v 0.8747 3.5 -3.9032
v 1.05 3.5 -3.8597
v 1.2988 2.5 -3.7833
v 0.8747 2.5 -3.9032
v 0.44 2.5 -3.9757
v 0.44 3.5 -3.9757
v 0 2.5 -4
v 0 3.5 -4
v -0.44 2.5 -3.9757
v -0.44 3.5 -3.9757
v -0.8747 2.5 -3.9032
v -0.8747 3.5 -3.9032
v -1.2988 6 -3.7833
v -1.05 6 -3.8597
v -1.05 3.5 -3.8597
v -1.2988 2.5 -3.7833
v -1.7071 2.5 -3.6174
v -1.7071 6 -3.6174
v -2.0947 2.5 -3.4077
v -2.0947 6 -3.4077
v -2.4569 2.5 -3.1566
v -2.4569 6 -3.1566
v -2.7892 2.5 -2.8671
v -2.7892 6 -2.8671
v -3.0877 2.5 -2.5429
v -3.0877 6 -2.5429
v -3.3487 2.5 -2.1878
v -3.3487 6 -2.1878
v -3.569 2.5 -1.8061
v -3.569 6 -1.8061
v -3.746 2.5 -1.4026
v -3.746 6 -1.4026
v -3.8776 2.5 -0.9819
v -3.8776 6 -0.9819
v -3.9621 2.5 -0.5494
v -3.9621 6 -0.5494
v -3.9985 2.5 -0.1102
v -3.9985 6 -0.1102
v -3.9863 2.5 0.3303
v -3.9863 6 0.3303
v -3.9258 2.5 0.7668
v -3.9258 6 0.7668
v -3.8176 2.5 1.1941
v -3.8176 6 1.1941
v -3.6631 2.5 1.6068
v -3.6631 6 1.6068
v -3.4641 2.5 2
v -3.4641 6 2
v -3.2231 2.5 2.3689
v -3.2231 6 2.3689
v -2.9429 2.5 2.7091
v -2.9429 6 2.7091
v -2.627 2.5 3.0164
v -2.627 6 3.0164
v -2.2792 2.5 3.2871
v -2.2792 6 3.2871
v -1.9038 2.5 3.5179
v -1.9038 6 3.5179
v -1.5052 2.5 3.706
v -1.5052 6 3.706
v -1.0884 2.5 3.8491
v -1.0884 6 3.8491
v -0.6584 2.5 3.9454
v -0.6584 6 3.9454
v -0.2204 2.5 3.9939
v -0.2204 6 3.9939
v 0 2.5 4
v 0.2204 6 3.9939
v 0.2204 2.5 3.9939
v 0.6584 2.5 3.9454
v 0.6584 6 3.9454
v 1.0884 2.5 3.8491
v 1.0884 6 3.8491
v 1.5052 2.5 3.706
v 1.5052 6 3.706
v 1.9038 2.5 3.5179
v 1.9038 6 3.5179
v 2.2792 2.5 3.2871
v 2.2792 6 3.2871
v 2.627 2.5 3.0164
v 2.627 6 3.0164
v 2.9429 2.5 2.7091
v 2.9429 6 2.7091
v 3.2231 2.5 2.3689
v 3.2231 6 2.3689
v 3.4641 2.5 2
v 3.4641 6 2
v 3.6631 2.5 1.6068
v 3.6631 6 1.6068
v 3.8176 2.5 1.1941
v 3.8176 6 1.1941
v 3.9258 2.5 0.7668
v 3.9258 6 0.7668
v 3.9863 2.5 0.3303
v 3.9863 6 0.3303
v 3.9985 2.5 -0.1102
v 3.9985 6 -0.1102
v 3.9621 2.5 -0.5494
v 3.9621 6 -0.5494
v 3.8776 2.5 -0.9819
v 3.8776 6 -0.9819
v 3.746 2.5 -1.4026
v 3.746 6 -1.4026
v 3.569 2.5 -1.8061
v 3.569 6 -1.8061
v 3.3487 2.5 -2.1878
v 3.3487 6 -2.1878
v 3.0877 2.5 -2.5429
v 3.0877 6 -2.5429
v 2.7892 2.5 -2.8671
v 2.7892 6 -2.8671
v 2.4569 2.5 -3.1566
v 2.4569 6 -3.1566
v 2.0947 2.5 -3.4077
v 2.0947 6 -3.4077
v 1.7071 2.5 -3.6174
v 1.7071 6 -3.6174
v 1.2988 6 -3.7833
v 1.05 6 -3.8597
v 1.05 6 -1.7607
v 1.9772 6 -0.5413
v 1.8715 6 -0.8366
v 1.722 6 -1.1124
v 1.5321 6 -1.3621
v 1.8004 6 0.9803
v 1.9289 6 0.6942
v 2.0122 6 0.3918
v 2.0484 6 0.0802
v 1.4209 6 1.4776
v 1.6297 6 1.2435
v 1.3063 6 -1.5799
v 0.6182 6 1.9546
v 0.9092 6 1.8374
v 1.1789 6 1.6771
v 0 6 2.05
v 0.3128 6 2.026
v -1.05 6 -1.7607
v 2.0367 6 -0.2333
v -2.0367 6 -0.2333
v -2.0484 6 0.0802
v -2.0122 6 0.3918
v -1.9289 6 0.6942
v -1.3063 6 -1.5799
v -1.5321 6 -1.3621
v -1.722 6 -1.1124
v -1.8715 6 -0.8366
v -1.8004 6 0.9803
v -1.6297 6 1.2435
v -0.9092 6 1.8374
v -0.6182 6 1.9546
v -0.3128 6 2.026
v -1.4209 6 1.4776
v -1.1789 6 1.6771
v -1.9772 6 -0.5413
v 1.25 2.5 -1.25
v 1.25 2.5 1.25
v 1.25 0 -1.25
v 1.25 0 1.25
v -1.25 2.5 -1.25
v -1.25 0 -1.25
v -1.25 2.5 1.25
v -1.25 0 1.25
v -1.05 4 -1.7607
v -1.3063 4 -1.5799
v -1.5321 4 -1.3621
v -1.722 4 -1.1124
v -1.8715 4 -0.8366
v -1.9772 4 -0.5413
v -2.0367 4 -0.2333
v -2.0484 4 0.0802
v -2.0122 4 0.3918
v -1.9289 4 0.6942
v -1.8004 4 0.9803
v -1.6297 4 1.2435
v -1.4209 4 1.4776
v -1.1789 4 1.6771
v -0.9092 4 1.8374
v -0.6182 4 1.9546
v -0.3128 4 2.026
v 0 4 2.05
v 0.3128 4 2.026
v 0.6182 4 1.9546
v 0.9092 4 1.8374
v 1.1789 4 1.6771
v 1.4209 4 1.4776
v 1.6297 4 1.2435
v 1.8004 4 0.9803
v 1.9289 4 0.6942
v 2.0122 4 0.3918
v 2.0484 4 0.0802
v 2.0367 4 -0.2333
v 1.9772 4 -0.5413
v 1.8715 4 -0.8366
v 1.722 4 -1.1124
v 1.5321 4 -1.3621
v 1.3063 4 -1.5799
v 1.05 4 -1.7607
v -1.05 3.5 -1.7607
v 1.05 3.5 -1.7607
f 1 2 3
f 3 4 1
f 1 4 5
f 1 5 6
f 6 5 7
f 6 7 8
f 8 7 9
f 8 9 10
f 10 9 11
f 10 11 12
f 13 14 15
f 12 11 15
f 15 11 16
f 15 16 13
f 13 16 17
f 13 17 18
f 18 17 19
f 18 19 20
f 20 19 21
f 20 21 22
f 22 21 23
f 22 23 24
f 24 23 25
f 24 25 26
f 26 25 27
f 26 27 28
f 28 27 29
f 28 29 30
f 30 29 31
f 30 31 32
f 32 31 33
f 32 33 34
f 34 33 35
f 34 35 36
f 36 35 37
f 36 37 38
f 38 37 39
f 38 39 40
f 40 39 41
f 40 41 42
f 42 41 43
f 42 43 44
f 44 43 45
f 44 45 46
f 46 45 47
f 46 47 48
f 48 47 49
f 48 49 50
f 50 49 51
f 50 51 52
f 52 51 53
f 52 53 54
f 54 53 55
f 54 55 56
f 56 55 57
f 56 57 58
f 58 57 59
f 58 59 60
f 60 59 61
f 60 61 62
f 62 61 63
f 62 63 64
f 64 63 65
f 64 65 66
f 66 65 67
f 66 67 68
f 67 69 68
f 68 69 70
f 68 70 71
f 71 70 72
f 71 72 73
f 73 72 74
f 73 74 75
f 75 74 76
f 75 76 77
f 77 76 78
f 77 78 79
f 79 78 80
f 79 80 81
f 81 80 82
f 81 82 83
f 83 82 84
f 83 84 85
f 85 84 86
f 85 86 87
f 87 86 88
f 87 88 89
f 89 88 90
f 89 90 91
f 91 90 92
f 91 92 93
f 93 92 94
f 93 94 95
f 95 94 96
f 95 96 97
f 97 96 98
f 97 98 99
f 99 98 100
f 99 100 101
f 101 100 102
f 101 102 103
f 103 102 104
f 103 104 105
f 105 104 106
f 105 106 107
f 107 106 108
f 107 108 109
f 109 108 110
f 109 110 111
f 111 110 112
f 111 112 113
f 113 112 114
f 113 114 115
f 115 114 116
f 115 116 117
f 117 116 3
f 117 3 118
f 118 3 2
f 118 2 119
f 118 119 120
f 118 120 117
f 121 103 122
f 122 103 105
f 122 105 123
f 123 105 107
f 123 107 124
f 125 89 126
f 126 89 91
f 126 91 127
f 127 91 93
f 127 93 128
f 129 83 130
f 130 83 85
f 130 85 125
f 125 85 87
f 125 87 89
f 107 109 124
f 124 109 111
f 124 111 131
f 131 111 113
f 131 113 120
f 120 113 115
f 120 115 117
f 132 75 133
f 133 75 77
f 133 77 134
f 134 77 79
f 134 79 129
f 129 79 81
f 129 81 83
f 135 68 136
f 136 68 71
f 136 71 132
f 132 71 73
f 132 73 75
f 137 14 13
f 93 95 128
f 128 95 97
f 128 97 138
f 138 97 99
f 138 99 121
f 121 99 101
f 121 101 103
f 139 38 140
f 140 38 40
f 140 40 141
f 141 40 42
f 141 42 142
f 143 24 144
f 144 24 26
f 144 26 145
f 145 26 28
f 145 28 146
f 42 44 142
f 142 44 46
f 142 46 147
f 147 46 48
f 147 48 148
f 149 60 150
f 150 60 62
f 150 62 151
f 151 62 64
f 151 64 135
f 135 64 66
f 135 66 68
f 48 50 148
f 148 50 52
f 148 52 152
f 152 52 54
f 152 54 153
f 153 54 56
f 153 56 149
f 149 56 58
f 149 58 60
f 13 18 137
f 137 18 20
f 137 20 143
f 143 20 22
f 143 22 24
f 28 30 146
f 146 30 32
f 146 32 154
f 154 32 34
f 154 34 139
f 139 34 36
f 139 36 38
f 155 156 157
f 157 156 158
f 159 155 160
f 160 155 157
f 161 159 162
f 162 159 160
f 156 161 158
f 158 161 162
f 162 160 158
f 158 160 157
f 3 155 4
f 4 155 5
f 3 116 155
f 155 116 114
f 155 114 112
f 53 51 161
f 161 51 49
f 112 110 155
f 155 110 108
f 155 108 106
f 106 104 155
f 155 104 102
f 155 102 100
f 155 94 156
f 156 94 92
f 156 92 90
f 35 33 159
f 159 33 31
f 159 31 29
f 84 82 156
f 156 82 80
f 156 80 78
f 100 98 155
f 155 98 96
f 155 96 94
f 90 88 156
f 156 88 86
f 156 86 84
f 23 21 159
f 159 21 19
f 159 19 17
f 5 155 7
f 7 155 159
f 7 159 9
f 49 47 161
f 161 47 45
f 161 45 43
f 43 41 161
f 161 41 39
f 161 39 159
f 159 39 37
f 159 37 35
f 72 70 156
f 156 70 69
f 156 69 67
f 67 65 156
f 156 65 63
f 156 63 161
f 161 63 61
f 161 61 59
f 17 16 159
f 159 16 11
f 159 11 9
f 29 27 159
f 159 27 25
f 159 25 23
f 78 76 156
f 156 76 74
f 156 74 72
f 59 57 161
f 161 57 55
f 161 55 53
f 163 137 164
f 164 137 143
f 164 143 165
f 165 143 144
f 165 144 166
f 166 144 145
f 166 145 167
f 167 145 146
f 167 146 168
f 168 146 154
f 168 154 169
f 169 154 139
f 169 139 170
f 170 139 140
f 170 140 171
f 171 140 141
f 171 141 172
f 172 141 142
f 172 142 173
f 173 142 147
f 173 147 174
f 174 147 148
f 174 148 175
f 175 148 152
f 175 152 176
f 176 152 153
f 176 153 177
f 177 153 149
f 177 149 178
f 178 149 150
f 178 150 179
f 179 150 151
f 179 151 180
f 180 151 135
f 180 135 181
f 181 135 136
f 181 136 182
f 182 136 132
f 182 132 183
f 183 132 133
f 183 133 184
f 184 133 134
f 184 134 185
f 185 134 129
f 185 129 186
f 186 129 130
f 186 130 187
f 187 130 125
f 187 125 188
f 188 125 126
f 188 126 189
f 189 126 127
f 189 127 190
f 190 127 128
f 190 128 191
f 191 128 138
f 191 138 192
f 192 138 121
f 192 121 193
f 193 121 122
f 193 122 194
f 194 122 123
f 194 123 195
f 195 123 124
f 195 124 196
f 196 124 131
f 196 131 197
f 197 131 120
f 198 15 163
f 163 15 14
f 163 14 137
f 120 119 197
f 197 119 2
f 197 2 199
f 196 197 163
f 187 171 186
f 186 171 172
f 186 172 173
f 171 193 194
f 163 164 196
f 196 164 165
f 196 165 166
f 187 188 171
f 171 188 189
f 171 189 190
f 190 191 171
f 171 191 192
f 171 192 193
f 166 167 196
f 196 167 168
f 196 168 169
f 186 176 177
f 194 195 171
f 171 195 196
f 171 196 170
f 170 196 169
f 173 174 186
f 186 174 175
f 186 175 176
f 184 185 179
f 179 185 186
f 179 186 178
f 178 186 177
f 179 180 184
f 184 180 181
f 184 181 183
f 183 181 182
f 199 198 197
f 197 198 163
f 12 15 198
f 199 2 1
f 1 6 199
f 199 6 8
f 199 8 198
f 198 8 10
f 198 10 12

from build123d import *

# Parameters (mm, degrees)
SKETCH1_W           = 2.5
SKETCH1_H           = 2.5
BOSS_EXTRUDE1_DEPTH = 2.5
SKETCH2_R           = 4
BOSS_EXTRUDE2_DEPTH = 3.5
CUT_EXTRUDE1_DEPTH  = 2
CUT_EXTRUDE2_DEPTH  = 0.5


with BuildPart() as part:
    # Sketch1 → Boss-Extrude1 (new body)
    with BuildSketch(Plane(origin=(0, 0, 0), x_dir=(1, 0, 0), z_dir=(0, 1, 0))):
        Rectangle(SKETCH1_W, SKETCH1_H)
    extrude(amount=BOSS_EXTRUDE1_DEPTH)

    # Sketch2 → Boss-Extrude2 (add)
    with BuildSketch(Plane(origin=(0, 2.5, 0), x_dir=(1, 0, 0), z_dir=(0, 1, 0))):
        with Locations(Location((0, 0, 0), (0, 0, 270))):
            Circle(SKETCH2_R)
    extrude(amount=BOSS_EXTRUDE2_DEPTH)

    # Sketch3 → Cut-Extrude1 (cut)
    with BuildSketch(Plane(origin=(0, 6, 0), x_dir=(1, 0, 0), z_dir=(0, 1, 0))):
        with BuildLine():
            Line((1.05, 1.760681686), (1.05, 4))
            Line((1.05, 4), (-1.05, 4))
            Line((-1.05, 4), (-1.05, 1.760681686))
            ThreePointArc((-1.05, 1.760681686), (0, -2.05), (1.05, 1.760681686))
        make_face()
    extrude(amount=-CUT_EXTRUDE1_DEPTH, mode=Mode.SUBTRACT)

    # Sketch5 → Cut-Extrude2 (cut)
    with BuildSketch(Plane(origin=(0, 4, 0), x_dir=(1, 0, 0), z_dir=(0, 1, 0))):
        with BuildLine():
            ThreePointArc((1.05, 1.760681686), (0, 2.05), (-1.05, 1.760681686))
            Line((-1.05, 1.760681686), (1.05, 1.760681686))
        make_face()
        with BuildLine():
            Line((-1.05, 3.85972797), (-1.05, 1.760681686))
            ThreePointArc((-1.05, 1.760681686), (0, 2.05), (1.05, 1.760681686))
            Line((1.05, 1.760681686), (1.05, 3.85972797))
            ThreePointArc((1.05, 3.85972797), (0.5296641, 3.964776909), (-2e-09, 4))
            ThreePointArc((-2e-09, 4), (-0.529664103, 3.964776909), (-1.05, 3.85972797))
        make_face()
    extrude(amount=-CUT_EXTRUDE2_DEPTH, mode=Mode.SUBTRACT)


solid = part.part
